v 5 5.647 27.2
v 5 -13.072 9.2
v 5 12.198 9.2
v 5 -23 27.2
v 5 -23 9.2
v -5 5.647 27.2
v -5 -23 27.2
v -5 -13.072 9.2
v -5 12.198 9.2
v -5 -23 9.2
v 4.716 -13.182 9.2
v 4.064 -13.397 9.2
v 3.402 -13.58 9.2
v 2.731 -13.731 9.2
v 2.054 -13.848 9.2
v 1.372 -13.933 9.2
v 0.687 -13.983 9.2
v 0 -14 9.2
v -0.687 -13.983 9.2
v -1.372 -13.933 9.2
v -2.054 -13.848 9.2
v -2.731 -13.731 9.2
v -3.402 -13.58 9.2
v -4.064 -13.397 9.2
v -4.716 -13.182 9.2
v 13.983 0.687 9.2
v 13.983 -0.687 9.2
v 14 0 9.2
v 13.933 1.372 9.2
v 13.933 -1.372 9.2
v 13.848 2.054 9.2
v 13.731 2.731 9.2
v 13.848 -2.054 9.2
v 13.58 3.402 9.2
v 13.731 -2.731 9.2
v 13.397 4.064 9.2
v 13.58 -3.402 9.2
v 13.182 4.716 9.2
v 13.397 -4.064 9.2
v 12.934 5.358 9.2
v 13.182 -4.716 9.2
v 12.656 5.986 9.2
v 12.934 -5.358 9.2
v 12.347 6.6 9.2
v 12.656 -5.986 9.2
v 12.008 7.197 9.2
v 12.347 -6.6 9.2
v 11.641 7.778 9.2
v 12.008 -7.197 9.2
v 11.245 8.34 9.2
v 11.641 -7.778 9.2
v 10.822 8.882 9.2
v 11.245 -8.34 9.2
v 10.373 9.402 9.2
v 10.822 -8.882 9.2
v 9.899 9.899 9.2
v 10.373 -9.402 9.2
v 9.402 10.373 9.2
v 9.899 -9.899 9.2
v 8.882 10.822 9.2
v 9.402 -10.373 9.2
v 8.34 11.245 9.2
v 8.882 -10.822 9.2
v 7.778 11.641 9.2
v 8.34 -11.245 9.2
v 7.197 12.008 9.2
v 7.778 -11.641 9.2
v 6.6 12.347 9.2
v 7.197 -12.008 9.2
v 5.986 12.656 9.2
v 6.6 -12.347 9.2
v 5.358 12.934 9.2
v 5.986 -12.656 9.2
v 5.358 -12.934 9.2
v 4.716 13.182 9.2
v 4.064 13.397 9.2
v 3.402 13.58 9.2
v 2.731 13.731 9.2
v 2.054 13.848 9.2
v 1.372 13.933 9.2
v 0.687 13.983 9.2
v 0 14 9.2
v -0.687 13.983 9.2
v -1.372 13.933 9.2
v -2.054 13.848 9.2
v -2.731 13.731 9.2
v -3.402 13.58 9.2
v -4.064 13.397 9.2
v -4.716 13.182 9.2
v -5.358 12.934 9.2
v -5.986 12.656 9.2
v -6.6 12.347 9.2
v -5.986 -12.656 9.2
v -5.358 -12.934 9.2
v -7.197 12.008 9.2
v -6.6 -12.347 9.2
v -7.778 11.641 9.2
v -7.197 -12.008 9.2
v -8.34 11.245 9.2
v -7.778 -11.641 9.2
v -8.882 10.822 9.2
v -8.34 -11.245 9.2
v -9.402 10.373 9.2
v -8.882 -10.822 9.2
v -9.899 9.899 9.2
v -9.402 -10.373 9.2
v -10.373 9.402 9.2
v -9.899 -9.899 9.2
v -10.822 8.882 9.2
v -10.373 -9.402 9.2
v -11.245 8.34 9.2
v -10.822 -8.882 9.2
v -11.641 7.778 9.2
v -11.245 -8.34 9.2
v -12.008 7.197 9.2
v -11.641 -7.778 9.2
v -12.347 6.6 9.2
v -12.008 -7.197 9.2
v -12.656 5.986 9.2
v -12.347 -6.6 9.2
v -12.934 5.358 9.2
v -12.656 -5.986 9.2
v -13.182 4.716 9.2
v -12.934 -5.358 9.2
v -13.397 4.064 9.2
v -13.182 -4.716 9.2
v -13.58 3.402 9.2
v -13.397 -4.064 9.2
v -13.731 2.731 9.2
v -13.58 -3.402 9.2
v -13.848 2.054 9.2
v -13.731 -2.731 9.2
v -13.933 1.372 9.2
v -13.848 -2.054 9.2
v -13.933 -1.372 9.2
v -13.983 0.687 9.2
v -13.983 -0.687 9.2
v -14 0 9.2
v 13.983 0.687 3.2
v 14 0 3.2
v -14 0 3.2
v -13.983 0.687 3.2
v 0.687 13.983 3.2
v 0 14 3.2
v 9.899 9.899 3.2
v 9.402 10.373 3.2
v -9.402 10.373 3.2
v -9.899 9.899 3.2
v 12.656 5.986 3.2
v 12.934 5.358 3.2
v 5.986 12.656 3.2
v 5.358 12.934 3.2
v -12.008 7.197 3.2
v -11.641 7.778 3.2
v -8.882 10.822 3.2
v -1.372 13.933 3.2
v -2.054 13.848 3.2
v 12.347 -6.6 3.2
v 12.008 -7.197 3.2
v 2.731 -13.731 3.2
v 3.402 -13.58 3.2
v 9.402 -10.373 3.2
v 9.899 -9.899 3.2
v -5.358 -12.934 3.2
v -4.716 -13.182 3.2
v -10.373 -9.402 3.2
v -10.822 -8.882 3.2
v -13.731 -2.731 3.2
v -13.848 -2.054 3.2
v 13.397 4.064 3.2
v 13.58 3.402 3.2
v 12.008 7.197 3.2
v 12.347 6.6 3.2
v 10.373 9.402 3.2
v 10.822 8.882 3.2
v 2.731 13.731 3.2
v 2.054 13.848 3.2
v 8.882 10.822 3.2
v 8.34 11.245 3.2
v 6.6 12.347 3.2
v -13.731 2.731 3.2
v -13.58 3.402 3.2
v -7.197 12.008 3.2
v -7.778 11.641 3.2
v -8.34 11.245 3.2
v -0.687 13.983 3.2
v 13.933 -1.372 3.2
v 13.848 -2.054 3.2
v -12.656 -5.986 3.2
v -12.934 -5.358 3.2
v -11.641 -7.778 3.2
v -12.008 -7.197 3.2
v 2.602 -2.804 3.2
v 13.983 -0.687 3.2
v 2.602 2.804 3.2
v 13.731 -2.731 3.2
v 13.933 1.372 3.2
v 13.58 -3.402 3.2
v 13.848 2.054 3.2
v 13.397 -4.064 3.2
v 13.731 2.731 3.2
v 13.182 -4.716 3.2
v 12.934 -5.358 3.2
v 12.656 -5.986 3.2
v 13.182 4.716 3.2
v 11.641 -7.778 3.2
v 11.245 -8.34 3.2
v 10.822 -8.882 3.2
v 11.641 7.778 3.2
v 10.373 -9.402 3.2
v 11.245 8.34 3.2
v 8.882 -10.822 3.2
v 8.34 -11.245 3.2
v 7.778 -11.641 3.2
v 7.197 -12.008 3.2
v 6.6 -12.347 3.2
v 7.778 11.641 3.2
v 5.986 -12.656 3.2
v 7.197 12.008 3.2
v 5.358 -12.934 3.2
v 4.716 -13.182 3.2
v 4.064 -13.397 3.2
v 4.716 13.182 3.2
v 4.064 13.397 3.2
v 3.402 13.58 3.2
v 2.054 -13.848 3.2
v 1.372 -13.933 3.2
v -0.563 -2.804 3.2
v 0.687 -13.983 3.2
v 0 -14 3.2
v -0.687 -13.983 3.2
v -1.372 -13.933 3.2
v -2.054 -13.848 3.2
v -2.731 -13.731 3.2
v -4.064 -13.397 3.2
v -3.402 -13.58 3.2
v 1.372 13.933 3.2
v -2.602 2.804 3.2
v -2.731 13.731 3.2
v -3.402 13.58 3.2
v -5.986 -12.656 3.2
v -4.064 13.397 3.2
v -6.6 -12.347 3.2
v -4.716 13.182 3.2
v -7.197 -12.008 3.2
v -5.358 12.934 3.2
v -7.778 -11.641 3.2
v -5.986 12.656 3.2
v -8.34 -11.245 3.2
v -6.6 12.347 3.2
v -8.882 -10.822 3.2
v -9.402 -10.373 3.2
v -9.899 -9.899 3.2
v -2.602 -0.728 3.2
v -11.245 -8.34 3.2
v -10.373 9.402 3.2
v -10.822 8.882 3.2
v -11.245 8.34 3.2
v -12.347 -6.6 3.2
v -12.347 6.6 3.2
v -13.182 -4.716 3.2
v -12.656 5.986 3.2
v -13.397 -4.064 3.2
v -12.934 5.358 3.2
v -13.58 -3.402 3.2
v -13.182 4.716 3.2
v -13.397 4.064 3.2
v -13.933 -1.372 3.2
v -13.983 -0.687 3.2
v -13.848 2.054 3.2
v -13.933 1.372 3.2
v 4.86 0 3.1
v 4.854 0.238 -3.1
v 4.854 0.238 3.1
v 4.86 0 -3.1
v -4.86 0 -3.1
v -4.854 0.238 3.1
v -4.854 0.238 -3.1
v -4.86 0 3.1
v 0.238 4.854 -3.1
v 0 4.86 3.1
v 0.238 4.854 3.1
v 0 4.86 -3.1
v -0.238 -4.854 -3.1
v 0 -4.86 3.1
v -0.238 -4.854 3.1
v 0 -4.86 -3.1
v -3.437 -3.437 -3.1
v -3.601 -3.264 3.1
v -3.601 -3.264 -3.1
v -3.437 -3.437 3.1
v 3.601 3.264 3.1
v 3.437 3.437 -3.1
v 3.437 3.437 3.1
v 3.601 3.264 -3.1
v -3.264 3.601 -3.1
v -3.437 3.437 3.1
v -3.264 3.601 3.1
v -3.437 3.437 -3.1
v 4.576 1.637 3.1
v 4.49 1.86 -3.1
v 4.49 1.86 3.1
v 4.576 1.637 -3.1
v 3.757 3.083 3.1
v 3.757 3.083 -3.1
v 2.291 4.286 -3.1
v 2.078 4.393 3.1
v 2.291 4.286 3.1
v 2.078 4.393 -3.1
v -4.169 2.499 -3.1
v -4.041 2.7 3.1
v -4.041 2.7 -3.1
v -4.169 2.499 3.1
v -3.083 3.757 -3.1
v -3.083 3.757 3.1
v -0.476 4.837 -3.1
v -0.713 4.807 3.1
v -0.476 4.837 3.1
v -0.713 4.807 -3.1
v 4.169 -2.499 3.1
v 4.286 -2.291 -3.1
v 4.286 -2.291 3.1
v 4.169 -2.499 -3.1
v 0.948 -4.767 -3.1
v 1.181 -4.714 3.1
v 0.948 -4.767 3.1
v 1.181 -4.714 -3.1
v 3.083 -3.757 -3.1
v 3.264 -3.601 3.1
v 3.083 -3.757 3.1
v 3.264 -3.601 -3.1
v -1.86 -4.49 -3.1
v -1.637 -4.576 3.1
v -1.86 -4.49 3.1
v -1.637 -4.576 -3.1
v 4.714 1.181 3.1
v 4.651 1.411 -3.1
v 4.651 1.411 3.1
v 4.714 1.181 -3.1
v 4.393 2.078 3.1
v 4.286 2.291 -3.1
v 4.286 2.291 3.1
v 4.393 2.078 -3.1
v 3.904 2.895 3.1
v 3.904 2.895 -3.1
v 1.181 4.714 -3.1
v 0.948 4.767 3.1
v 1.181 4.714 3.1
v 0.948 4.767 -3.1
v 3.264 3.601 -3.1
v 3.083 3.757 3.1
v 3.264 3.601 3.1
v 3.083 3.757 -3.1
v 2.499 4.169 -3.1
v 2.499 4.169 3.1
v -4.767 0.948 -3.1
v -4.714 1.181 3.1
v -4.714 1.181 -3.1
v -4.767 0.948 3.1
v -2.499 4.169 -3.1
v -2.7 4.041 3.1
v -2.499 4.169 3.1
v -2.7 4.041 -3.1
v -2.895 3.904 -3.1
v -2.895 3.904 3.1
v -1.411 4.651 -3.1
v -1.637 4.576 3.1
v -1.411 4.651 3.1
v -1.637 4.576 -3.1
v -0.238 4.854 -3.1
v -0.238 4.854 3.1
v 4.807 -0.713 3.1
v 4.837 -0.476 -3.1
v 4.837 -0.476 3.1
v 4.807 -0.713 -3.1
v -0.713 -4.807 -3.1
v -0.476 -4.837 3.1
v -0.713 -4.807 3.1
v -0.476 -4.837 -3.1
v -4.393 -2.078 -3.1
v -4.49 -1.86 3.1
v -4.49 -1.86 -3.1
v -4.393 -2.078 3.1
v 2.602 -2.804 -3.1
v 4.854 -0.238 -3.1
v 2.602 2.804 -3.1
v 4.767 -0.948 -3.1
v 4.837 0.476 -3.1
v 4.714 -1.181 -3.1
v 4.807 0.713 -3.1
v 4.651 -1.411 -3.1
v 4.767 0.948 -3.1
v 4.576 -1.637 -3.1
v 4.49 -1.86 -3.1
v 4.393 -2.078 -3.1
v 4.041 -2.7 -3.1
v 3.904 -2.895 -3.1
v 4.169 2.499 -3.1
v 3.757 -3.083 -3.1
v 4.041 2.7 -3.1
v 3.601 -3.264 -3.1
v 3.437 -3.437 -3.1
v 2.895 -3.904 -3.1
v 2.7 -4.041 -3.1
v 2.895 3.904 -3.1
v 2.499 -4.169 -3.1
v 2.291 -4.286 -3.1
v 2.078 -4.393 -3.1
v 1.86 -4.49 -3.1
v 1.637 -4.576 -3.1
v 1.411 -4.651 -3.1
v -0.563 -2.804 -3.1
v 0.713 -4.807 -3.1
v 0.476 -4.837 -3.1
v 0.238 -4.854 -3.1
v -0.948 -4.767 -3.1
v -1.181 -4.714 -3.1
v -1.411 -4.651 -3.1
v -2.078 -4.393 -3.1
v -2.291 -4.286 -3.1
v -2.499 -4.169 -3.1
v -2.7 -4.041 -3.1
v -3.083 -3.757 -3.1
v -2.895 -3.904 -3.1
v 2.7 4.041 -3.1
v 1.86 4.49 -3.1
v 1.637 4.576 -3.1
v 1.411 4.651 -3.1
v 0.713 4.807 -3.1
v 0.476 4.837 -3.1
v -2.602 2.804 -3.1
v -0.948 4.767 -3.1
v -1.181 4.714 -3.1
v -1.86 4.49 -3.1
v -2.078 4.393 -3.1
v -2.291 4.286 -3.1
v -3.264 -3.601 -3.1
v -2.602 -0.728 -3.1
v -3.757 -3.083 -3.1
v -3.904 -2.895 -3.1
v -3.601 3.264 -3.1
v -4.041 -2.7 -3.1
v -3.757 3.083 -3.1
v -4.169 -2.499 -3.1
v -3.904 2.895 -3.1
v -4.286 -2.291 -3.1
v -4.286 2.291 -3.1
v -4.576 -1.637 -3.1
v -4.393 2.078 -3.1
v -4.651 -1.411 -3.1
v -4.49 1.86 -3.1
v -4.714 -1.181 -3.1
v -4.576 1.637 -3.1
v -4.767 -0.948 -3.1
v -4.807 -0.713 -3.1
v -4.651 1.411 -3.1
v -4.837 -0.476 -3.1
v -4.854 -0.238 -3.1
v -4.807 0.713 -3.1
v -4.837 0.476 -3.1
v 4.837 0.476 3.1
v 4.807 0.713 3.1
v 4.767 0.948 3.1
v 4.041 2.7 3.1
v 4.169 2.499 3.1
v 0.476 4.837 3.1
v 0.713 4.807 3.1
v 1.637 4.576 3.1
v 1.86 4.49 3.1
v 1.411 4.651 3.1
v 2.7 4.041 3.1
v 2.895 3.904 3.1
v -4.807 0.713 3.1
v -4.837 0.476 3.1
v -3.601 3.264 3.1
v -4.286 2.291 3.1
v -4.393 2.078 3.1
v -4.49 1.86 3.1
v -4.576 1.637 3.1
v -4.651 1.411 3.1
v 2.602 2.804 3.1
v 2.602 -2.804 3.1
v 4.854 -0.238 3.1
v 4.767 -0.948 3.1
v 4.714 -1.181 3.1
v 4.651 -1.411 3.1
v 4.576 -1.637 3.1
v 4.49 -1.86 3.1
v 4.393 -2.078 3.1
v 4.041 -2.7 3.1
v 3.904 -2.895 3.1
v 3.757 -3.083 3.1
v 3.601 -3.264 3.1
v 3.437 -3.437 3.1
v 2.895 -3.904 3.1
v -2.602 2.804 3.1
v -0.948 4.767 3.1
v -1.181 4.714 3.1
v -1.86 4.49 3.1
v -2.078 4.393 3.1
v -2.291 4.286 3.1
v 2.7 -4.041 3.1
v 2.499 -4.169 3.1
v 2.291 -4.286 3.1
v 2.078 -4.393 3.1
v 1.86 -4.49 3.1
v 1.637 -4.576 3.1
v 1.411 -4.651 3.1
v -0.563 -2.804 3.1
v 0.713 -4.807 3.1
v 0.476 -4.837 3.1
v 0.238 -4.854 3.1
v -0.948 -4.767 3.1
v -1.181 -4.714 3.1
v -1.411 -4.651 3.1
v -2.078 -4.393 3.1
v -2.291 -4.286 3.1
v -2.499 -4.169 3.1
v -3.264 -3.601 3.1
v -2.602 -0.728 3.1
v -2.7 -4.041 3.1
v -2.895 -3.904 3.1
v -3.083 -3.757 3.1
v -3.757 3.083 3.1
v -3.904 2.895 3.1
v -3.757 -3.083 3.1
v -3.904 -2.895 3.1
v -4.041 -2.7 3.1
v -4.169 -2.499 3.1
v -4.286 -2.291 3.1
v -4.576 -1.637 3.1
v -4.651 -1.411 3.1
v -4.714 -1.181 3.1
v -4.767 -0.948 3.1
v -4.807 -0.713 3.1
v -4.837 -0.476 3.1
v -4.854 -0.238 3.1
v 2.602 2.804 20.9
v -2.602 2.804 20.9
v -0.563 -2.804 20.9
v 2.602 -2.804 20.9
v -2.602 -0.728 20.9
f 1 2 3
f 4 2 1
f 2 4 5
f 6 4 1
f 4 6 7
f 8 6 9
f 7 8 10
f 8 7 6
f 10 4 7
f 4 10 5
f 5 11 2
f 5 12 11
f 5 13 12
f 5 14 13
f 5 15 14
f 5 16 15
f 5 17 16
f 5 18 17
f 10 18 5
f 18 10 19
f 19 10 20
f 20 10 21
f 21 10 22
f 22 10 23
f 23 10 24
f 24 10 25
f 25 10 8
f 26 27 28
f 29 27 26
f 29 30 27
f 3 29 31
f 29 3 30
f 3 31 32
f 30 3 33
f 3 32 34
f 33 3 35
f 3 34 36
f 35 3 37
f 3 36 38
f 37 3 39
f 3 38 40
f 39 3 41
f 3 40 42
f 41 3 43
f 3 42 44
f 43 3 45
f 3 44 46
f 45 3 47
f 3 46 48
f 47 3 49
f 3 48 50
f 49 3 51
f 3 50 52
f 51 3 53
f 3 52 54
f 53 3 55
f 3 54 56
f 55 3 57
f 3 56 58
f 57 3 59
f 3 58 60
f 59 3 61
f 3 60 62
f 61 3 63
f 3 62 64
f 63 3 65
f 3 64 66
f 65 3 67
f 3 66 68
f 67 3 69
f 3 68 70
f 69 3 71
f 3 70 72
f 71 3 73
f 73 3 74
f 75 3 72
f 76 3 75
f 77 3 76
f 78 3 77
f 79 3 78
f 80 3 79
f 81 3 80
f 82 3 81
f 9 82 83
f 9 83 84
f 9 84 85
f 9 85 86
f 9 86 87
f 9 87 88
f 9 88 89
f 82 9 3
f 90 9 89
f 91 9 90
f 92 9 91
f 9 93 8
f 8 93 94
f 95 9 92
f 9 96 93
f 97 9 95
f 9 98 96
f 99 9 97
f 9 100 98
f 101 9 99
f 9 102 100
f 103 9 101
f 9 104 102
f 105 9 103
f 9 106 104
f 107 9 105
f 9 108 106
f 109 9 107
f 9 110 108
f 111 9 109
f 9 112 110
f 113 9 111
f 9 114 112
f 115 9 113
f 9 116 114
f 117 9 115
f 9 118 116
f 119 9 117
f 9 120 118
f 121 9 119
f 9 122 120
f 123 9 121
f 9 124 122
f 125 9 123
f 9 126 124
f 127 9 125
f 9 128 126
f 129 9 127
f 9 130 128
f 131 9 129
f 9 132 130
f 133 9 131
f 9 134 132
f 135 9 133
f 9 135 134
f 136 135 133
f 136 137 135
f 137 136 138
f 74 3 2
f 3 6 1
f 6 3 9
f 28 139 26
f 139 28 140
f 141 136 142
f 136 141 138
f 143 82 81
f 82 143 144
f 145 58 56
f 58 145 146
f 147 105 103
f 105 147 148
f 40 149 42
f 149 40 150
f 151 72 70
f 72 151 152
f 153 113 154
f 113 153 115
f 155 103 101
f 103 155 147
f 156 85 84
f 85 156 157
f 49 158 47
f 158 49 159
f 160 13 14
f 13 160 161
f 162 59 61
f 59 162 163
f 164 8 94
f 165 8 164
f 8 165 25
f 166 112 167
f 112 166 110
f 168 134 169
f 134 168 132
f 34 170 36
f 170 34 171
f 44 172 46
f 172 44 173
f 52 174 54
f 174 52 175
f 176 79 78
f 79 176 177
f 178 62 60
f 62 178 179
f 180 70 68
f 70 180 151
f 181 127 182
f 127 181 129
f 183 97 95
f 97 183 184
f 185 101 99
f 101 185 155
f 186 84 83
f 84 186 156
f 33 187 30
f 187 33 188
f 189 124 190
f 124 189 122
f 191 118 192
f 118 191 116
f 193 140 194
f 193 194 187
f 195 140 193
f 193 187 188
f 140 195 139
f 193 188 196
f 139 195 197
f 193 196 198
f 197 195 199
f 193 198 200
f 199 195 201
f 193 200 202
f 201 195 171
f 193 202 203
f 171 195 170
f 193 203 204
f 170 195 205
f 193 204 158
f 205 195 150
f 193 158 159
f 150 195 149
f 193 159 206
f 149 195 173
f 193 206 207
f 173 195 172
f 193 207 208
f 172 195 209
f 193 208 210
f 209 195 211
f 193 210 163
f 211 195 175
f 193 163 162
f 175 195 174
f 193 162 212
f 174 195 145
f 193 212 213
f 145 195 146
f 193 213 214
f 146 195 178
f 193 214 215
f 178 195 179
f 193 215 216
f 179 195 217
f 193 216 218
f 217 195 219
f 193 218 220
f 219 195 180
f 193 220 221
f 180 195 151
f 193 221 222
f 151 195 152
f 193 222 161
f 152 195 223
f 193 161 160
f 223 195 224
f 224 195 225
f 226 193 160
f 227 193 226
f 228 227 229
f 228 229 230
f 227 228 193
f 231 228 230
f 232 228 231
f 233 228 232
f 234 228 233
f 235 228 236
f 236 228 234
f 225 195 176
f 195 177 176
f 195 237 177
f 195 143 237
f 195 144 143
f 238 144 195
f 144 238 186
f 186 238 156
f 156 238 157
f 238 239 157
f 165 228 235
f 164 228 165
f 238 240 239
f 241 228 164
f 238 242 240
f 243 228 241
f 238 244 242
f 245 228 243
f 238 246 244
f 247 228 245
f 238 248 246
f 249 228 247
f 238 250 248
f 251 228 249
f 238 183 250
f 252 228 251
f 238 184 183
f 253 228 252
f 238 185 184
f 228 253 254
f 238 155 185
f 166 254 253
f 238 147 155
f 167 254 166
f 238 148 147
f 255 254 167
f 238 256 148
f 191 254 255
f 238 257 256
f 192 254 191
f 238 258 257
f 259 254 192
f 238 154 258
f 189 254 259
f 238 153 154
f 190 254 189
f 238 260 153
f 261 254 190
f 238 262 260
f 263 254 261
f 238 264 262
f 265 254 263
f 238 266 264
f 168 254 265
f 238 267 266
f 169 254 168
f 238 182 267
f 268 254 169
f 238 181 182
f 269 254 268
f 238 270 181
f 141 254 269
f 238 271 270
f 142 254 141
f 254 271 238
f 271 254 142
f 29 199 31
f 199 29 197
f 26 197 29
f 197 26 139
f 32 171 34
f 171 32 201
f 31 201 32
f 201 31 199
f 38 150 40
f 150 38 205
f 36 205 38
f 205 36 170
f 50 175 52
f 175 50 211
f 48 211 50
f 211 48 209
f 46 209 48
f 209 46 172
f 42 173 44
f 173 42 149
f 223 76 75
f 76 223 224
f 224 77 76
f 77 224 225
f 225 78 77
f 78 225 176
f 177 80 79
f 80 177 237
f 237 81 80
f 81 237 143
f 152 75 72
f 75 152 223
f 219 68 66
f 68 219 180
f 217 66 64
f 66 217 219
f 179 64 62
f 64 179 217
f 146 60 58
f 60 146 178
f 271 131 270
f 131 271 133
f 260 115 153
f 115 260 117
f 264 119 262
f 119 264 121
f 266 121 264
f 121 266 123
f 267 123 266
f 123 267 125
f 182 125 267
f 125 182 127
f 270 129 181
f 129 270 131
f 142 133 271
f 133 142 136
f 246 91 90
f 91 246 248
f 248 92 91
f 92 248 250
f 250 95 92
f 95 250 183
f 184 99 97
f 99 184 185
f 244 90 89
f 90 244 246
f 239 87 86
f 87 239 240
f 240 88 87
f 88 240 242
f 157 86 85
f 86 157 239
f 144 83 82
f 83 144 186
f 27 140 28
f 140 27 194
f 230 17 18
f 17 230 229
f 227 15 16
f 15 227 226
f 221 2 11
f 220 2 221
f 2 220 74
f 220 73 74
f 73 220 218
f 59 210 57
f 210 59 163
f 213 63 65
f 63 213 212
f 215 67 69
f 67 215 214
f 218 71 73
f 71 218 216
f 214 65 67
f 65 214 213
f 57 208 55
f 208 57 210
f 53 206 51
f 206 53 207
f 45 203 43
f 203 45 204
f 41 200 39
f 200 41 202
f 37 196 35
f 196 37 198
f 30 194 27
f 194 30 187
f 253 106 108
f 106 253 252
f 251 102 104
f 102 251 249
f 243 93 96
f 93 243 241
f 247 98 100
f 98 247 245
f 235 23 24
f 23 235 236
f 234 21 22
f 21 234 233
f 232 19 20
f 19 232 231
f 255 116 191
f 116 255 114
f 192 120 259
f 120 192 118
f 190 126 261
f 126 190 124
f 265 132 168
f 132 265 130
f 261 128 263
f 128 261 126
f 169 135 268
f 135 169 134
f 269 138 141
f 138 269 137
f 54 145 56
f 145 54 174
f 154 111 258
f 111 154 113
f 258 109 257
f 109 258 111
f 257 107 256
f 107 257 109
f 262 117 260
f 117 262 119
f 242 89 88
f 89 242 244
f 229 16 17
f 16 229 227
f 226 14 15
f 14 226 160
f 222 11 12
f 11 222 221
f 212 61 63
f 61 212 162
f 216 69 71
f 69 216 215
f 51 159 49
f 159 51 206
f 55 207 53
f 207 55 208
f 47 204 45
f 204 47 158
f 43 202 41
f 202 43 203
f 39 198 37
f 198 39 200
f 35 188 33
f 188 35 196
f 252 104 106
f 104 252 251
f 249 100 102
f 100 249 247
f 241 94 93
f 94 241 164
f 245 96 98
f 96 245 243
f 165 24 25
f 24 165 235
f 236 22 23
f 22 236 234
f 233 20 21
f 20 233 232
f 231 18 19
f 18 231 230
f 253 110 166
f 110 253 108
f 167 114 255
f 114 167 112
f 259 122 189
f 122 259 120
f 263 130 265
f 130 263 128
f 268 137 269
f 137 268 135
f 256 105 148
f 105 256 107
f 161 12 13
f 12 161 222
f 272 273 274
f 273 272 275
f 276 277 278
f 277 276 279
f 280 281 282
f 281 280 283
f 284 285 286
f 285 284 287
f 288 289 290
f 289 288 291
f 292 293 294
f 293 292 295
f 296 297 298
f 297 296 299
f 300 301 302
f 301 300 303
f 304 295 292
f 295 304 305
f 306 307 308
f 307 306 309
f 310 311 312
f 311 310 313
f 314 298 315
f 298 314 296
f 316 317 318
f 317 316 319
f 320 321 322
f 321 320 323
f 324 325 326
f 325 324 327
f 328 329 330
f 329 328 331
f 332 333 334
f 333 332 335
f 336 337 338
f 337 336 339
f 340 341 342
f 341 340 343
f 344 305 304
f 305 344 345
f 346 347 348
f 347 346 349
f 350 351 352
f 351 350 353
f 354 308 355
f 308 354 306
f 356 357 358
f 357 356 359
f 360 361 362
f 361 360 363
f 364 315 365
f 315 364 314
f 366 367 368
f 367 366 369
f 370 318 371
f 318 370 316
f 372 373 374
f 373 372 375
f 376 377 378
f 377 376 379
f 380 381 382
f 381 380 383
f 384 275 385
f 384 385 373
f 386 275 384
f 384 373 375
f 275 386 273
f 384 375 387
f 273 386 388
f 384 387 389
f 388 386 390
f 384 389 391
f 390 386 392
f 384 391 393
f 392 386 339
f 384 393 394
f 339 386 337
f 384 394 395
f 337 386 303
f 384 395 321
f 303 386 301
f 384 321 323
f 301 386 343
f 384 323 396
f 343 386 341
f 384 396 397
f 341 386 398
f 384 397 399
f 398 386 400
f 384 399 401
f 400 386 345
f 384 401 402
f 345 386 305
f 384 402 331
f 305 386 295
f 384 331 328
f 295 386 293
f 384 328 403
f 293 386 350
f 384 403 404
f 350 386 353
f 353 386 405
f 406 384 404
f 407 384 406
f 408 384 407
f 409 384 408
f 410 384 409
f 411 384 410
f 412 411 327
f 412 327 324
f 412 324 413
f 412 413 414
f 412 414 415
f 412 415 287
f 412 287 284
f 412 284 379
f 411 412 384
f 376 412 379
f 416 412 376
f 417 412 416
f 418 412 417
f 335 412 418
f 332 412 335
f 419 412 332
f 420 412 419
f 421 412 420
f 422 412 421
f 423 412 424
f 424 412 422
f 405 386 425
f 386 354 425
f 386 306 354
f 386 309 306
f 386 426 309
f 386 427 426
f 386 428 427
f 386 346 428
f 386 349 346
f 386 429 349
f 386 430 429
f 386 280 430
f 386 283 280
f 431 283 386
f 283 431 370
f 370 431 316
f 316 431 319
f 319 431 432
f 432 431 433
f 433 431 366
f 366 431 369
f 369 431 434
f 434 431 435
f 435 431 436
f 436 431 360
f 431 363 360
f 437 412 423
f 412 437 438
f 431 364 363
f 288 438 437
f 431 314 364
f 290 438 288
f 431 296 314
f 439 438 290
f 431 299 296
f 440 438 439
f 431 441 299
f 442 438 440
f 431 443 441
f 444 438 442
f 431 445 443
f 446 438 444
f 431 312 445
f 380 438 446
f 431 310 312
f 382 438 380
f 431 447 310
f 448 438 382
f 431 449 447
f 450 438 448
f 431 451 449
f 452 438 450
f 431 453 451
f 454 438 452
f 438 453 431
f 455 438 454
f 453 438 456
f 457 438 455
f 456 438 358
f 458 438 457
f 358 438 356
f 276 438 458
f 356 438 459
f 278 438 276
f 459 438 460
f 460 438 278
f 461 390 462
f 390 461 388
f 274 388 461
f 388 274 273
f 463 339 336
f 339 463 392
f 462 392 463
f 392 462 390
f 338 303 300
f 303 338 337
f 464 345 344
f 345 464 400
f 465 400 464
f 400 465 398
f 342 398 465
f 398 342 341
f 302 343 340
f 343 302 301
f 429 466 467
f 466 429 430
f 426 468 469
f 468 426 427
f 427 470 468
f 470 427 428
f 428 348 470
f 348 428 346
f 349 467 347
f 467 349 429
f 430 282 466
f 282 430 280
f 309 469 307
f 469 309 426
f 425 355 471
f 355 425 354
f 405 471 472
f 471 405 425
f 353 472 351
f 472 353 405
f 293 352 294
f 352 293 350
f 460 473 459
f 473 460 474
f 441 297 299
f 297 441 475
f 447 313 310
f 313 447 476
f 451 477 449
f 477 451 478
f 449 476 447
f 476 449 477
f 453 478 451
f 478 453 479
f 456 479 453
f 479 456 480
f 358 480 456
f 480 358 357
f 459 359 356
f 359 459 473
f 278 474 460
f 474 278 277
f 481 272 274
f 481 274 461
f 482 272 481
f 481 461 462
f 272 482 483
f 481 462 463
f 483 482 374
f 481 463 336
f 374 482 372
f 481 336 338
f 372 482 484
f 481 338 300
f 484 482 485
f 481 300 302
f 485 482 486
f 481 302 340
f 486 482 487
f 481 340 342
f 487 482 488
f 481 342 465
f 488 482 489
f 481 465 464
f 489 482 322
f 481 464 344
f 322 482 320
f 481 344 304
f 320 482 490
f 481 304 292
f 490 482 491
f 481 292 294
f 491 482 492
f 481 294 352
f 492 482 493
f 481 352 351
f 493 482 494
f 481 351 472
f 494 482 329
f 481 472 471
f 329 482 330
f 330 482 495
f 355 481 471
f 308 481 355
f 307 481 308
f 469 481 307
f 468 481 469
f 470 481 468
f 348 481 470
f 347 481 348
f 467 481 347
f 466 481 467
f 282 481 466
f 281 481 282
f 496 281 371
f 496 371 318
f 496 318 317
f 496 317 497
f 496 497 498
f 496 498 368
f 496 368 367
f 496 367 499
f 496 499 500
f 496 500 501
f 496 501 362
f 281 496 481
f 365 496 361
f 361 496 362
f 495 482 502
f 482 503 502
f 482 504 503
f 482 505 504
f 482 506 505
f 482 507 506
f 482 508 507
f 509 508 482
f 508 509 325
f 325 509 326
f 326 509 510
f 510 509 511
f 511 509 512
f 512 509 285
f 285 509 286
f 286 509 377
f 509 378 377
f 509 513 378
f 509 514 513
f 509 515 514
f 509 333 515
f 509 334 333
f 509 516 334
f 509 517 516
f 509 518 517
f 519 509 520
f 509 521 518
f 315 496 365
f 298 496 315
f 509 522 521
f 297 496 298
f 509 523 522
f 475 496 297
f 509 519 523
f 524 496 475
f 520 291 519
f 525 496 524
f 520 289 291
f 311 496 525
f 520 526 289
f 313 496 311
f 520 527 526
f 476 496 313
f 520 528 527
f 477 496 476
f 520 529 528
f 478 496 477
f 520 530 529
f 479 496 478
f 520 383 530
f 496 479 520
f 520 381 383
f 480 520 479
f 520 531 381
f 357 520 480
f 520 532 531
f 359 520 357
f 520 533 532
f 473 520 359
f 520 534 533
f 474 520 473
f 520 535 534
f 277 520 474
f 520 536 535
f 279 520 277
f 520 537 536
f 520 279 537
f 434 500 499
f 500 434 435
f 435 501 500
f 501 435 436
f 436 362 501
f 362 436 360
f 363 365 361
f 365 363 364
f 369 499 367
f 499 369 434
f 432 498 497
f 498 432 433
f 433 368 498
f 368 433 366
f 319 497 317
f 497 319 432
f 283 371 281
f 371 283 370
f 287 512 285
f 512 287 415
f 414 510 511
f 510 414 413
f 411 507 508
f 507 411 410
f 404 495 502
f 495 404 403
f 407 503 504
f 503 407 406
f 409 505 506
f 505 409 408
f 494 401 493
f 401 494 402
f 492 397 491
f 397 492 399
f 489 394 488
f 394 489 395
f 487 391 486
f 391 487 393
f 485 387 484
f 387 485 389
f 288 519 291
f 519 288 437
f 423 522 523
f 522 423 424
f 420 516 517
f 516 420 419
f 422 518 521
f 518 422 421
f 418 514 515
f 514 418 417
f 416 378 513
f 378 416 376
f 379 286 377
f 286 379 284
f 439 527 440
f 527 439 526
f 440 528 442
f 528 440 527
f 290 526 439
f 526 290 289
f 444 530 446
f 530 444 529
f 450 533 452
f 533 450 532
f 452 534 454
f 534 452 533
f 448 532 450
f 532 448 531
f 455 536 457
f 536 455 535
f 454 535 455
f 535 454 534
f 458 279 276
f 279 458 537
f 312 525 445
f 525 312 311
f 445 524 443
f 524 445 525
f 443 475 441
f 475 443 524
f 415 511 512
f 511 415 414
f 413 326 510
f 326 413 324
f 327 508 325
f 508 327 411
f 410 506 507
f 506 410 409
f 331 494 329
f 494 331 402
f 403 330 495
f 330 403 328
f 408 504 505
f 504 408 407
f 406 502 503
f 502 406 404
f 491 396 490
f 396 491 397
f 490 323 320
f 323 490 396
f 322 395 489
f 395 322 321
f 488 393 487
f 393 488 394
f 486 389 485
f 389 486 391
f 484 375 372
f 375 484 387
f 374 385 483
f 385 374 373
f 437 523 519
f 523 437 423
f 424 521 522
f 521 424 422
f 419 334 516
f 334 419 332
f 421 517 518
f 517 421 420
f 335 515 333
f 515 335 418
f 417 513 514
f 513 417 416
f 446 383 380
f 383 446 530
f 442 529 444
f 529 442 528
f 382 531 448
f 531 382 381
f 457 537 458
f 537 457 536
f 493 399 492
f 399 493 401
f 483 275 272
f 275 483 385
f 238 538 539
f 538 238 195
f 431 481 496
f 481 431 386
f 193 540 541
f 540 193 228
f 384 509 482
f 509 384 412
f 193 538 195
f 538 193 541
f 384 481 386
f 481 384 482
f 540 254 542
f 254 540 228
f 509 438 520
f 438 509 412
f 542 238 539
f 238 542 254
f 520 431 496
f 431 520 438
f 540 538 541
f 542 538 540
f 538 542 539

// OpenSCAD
$fn = 128;
fudge = 0.1;

HEIGHT = 31.20;
OUTSIDE_HEIGHT = 6.20;
INSERT_HEIGHT = 25;
OUTSIDE_RADIUS = 9.72/2;
SCALE = 3.58;

knob(OUTSIDE_HEIGHT, true);

module knob(height, with_outside)
{
    difference(){        
        union(){
            cylinder(height, OUTSIDE_RADIUS, OUTSIDE_RADIUS, true);
            if (with_outside){
                translate([0,0,OUTSIDE_HEIGHT])
                handle(height);
            }
        };
        translate([0,0,INSERT_HEIGHT/2 - OUTSIDE_HEIGHT/2-1])
        insert(INSERT_HEIGHT); 
    }
//    translate([30,0,INSERT_HEIGHT/2 - OUTSIDE_HEIGHT/2-1])
//    insert(INSERT_HEIGHT);        
}

module handle(height) {
    cylinder_radius = 28/2;
    cylinder_height = 6;
    cube_depth = 18;
    cube_height = 10;
    cube_widht=37;
    union(){
        cylinder(cylinder_height, cylinder_radius, cylinder_radius, true);    
        rotate([0,0,180])        
        translate([0,cube_widht/2 - cylinder_radius, cylinder_height/2 + cube_depth/2])
        holder(cube_height,cube_widht,cube_depth);
    }
}

module holder(cube_height,cube_widht,cube_depth) {
    difference(){
        cube([cube_height,cube_widht,cube_depth],true);        
        translate([0,-23,0])
        rotate([70,0,0])
        cube([cube_height,cube_widht*2,cube_depth], true);        
    }
//    rotate([60,0,0])
//    cube([cube_height,cube_widht,cube_depth], true);
}

module insert(height){
    scale([SCALE, SCALE, 1])
    translate([0,0,-height/2])
    poly_path3805(height);
}

module poly_path3805(h)
{
  scale([25.4/90, -25.4/90, 1]) union()
  {
    linear_extrude(height=h)
      polygon([[2.574961,-2.775765],[-2.574963,-2.775765],[-2.574963,0.720515],[-0.556749,2.775765],[2.574963,2.775765]]);
  }
}
    
